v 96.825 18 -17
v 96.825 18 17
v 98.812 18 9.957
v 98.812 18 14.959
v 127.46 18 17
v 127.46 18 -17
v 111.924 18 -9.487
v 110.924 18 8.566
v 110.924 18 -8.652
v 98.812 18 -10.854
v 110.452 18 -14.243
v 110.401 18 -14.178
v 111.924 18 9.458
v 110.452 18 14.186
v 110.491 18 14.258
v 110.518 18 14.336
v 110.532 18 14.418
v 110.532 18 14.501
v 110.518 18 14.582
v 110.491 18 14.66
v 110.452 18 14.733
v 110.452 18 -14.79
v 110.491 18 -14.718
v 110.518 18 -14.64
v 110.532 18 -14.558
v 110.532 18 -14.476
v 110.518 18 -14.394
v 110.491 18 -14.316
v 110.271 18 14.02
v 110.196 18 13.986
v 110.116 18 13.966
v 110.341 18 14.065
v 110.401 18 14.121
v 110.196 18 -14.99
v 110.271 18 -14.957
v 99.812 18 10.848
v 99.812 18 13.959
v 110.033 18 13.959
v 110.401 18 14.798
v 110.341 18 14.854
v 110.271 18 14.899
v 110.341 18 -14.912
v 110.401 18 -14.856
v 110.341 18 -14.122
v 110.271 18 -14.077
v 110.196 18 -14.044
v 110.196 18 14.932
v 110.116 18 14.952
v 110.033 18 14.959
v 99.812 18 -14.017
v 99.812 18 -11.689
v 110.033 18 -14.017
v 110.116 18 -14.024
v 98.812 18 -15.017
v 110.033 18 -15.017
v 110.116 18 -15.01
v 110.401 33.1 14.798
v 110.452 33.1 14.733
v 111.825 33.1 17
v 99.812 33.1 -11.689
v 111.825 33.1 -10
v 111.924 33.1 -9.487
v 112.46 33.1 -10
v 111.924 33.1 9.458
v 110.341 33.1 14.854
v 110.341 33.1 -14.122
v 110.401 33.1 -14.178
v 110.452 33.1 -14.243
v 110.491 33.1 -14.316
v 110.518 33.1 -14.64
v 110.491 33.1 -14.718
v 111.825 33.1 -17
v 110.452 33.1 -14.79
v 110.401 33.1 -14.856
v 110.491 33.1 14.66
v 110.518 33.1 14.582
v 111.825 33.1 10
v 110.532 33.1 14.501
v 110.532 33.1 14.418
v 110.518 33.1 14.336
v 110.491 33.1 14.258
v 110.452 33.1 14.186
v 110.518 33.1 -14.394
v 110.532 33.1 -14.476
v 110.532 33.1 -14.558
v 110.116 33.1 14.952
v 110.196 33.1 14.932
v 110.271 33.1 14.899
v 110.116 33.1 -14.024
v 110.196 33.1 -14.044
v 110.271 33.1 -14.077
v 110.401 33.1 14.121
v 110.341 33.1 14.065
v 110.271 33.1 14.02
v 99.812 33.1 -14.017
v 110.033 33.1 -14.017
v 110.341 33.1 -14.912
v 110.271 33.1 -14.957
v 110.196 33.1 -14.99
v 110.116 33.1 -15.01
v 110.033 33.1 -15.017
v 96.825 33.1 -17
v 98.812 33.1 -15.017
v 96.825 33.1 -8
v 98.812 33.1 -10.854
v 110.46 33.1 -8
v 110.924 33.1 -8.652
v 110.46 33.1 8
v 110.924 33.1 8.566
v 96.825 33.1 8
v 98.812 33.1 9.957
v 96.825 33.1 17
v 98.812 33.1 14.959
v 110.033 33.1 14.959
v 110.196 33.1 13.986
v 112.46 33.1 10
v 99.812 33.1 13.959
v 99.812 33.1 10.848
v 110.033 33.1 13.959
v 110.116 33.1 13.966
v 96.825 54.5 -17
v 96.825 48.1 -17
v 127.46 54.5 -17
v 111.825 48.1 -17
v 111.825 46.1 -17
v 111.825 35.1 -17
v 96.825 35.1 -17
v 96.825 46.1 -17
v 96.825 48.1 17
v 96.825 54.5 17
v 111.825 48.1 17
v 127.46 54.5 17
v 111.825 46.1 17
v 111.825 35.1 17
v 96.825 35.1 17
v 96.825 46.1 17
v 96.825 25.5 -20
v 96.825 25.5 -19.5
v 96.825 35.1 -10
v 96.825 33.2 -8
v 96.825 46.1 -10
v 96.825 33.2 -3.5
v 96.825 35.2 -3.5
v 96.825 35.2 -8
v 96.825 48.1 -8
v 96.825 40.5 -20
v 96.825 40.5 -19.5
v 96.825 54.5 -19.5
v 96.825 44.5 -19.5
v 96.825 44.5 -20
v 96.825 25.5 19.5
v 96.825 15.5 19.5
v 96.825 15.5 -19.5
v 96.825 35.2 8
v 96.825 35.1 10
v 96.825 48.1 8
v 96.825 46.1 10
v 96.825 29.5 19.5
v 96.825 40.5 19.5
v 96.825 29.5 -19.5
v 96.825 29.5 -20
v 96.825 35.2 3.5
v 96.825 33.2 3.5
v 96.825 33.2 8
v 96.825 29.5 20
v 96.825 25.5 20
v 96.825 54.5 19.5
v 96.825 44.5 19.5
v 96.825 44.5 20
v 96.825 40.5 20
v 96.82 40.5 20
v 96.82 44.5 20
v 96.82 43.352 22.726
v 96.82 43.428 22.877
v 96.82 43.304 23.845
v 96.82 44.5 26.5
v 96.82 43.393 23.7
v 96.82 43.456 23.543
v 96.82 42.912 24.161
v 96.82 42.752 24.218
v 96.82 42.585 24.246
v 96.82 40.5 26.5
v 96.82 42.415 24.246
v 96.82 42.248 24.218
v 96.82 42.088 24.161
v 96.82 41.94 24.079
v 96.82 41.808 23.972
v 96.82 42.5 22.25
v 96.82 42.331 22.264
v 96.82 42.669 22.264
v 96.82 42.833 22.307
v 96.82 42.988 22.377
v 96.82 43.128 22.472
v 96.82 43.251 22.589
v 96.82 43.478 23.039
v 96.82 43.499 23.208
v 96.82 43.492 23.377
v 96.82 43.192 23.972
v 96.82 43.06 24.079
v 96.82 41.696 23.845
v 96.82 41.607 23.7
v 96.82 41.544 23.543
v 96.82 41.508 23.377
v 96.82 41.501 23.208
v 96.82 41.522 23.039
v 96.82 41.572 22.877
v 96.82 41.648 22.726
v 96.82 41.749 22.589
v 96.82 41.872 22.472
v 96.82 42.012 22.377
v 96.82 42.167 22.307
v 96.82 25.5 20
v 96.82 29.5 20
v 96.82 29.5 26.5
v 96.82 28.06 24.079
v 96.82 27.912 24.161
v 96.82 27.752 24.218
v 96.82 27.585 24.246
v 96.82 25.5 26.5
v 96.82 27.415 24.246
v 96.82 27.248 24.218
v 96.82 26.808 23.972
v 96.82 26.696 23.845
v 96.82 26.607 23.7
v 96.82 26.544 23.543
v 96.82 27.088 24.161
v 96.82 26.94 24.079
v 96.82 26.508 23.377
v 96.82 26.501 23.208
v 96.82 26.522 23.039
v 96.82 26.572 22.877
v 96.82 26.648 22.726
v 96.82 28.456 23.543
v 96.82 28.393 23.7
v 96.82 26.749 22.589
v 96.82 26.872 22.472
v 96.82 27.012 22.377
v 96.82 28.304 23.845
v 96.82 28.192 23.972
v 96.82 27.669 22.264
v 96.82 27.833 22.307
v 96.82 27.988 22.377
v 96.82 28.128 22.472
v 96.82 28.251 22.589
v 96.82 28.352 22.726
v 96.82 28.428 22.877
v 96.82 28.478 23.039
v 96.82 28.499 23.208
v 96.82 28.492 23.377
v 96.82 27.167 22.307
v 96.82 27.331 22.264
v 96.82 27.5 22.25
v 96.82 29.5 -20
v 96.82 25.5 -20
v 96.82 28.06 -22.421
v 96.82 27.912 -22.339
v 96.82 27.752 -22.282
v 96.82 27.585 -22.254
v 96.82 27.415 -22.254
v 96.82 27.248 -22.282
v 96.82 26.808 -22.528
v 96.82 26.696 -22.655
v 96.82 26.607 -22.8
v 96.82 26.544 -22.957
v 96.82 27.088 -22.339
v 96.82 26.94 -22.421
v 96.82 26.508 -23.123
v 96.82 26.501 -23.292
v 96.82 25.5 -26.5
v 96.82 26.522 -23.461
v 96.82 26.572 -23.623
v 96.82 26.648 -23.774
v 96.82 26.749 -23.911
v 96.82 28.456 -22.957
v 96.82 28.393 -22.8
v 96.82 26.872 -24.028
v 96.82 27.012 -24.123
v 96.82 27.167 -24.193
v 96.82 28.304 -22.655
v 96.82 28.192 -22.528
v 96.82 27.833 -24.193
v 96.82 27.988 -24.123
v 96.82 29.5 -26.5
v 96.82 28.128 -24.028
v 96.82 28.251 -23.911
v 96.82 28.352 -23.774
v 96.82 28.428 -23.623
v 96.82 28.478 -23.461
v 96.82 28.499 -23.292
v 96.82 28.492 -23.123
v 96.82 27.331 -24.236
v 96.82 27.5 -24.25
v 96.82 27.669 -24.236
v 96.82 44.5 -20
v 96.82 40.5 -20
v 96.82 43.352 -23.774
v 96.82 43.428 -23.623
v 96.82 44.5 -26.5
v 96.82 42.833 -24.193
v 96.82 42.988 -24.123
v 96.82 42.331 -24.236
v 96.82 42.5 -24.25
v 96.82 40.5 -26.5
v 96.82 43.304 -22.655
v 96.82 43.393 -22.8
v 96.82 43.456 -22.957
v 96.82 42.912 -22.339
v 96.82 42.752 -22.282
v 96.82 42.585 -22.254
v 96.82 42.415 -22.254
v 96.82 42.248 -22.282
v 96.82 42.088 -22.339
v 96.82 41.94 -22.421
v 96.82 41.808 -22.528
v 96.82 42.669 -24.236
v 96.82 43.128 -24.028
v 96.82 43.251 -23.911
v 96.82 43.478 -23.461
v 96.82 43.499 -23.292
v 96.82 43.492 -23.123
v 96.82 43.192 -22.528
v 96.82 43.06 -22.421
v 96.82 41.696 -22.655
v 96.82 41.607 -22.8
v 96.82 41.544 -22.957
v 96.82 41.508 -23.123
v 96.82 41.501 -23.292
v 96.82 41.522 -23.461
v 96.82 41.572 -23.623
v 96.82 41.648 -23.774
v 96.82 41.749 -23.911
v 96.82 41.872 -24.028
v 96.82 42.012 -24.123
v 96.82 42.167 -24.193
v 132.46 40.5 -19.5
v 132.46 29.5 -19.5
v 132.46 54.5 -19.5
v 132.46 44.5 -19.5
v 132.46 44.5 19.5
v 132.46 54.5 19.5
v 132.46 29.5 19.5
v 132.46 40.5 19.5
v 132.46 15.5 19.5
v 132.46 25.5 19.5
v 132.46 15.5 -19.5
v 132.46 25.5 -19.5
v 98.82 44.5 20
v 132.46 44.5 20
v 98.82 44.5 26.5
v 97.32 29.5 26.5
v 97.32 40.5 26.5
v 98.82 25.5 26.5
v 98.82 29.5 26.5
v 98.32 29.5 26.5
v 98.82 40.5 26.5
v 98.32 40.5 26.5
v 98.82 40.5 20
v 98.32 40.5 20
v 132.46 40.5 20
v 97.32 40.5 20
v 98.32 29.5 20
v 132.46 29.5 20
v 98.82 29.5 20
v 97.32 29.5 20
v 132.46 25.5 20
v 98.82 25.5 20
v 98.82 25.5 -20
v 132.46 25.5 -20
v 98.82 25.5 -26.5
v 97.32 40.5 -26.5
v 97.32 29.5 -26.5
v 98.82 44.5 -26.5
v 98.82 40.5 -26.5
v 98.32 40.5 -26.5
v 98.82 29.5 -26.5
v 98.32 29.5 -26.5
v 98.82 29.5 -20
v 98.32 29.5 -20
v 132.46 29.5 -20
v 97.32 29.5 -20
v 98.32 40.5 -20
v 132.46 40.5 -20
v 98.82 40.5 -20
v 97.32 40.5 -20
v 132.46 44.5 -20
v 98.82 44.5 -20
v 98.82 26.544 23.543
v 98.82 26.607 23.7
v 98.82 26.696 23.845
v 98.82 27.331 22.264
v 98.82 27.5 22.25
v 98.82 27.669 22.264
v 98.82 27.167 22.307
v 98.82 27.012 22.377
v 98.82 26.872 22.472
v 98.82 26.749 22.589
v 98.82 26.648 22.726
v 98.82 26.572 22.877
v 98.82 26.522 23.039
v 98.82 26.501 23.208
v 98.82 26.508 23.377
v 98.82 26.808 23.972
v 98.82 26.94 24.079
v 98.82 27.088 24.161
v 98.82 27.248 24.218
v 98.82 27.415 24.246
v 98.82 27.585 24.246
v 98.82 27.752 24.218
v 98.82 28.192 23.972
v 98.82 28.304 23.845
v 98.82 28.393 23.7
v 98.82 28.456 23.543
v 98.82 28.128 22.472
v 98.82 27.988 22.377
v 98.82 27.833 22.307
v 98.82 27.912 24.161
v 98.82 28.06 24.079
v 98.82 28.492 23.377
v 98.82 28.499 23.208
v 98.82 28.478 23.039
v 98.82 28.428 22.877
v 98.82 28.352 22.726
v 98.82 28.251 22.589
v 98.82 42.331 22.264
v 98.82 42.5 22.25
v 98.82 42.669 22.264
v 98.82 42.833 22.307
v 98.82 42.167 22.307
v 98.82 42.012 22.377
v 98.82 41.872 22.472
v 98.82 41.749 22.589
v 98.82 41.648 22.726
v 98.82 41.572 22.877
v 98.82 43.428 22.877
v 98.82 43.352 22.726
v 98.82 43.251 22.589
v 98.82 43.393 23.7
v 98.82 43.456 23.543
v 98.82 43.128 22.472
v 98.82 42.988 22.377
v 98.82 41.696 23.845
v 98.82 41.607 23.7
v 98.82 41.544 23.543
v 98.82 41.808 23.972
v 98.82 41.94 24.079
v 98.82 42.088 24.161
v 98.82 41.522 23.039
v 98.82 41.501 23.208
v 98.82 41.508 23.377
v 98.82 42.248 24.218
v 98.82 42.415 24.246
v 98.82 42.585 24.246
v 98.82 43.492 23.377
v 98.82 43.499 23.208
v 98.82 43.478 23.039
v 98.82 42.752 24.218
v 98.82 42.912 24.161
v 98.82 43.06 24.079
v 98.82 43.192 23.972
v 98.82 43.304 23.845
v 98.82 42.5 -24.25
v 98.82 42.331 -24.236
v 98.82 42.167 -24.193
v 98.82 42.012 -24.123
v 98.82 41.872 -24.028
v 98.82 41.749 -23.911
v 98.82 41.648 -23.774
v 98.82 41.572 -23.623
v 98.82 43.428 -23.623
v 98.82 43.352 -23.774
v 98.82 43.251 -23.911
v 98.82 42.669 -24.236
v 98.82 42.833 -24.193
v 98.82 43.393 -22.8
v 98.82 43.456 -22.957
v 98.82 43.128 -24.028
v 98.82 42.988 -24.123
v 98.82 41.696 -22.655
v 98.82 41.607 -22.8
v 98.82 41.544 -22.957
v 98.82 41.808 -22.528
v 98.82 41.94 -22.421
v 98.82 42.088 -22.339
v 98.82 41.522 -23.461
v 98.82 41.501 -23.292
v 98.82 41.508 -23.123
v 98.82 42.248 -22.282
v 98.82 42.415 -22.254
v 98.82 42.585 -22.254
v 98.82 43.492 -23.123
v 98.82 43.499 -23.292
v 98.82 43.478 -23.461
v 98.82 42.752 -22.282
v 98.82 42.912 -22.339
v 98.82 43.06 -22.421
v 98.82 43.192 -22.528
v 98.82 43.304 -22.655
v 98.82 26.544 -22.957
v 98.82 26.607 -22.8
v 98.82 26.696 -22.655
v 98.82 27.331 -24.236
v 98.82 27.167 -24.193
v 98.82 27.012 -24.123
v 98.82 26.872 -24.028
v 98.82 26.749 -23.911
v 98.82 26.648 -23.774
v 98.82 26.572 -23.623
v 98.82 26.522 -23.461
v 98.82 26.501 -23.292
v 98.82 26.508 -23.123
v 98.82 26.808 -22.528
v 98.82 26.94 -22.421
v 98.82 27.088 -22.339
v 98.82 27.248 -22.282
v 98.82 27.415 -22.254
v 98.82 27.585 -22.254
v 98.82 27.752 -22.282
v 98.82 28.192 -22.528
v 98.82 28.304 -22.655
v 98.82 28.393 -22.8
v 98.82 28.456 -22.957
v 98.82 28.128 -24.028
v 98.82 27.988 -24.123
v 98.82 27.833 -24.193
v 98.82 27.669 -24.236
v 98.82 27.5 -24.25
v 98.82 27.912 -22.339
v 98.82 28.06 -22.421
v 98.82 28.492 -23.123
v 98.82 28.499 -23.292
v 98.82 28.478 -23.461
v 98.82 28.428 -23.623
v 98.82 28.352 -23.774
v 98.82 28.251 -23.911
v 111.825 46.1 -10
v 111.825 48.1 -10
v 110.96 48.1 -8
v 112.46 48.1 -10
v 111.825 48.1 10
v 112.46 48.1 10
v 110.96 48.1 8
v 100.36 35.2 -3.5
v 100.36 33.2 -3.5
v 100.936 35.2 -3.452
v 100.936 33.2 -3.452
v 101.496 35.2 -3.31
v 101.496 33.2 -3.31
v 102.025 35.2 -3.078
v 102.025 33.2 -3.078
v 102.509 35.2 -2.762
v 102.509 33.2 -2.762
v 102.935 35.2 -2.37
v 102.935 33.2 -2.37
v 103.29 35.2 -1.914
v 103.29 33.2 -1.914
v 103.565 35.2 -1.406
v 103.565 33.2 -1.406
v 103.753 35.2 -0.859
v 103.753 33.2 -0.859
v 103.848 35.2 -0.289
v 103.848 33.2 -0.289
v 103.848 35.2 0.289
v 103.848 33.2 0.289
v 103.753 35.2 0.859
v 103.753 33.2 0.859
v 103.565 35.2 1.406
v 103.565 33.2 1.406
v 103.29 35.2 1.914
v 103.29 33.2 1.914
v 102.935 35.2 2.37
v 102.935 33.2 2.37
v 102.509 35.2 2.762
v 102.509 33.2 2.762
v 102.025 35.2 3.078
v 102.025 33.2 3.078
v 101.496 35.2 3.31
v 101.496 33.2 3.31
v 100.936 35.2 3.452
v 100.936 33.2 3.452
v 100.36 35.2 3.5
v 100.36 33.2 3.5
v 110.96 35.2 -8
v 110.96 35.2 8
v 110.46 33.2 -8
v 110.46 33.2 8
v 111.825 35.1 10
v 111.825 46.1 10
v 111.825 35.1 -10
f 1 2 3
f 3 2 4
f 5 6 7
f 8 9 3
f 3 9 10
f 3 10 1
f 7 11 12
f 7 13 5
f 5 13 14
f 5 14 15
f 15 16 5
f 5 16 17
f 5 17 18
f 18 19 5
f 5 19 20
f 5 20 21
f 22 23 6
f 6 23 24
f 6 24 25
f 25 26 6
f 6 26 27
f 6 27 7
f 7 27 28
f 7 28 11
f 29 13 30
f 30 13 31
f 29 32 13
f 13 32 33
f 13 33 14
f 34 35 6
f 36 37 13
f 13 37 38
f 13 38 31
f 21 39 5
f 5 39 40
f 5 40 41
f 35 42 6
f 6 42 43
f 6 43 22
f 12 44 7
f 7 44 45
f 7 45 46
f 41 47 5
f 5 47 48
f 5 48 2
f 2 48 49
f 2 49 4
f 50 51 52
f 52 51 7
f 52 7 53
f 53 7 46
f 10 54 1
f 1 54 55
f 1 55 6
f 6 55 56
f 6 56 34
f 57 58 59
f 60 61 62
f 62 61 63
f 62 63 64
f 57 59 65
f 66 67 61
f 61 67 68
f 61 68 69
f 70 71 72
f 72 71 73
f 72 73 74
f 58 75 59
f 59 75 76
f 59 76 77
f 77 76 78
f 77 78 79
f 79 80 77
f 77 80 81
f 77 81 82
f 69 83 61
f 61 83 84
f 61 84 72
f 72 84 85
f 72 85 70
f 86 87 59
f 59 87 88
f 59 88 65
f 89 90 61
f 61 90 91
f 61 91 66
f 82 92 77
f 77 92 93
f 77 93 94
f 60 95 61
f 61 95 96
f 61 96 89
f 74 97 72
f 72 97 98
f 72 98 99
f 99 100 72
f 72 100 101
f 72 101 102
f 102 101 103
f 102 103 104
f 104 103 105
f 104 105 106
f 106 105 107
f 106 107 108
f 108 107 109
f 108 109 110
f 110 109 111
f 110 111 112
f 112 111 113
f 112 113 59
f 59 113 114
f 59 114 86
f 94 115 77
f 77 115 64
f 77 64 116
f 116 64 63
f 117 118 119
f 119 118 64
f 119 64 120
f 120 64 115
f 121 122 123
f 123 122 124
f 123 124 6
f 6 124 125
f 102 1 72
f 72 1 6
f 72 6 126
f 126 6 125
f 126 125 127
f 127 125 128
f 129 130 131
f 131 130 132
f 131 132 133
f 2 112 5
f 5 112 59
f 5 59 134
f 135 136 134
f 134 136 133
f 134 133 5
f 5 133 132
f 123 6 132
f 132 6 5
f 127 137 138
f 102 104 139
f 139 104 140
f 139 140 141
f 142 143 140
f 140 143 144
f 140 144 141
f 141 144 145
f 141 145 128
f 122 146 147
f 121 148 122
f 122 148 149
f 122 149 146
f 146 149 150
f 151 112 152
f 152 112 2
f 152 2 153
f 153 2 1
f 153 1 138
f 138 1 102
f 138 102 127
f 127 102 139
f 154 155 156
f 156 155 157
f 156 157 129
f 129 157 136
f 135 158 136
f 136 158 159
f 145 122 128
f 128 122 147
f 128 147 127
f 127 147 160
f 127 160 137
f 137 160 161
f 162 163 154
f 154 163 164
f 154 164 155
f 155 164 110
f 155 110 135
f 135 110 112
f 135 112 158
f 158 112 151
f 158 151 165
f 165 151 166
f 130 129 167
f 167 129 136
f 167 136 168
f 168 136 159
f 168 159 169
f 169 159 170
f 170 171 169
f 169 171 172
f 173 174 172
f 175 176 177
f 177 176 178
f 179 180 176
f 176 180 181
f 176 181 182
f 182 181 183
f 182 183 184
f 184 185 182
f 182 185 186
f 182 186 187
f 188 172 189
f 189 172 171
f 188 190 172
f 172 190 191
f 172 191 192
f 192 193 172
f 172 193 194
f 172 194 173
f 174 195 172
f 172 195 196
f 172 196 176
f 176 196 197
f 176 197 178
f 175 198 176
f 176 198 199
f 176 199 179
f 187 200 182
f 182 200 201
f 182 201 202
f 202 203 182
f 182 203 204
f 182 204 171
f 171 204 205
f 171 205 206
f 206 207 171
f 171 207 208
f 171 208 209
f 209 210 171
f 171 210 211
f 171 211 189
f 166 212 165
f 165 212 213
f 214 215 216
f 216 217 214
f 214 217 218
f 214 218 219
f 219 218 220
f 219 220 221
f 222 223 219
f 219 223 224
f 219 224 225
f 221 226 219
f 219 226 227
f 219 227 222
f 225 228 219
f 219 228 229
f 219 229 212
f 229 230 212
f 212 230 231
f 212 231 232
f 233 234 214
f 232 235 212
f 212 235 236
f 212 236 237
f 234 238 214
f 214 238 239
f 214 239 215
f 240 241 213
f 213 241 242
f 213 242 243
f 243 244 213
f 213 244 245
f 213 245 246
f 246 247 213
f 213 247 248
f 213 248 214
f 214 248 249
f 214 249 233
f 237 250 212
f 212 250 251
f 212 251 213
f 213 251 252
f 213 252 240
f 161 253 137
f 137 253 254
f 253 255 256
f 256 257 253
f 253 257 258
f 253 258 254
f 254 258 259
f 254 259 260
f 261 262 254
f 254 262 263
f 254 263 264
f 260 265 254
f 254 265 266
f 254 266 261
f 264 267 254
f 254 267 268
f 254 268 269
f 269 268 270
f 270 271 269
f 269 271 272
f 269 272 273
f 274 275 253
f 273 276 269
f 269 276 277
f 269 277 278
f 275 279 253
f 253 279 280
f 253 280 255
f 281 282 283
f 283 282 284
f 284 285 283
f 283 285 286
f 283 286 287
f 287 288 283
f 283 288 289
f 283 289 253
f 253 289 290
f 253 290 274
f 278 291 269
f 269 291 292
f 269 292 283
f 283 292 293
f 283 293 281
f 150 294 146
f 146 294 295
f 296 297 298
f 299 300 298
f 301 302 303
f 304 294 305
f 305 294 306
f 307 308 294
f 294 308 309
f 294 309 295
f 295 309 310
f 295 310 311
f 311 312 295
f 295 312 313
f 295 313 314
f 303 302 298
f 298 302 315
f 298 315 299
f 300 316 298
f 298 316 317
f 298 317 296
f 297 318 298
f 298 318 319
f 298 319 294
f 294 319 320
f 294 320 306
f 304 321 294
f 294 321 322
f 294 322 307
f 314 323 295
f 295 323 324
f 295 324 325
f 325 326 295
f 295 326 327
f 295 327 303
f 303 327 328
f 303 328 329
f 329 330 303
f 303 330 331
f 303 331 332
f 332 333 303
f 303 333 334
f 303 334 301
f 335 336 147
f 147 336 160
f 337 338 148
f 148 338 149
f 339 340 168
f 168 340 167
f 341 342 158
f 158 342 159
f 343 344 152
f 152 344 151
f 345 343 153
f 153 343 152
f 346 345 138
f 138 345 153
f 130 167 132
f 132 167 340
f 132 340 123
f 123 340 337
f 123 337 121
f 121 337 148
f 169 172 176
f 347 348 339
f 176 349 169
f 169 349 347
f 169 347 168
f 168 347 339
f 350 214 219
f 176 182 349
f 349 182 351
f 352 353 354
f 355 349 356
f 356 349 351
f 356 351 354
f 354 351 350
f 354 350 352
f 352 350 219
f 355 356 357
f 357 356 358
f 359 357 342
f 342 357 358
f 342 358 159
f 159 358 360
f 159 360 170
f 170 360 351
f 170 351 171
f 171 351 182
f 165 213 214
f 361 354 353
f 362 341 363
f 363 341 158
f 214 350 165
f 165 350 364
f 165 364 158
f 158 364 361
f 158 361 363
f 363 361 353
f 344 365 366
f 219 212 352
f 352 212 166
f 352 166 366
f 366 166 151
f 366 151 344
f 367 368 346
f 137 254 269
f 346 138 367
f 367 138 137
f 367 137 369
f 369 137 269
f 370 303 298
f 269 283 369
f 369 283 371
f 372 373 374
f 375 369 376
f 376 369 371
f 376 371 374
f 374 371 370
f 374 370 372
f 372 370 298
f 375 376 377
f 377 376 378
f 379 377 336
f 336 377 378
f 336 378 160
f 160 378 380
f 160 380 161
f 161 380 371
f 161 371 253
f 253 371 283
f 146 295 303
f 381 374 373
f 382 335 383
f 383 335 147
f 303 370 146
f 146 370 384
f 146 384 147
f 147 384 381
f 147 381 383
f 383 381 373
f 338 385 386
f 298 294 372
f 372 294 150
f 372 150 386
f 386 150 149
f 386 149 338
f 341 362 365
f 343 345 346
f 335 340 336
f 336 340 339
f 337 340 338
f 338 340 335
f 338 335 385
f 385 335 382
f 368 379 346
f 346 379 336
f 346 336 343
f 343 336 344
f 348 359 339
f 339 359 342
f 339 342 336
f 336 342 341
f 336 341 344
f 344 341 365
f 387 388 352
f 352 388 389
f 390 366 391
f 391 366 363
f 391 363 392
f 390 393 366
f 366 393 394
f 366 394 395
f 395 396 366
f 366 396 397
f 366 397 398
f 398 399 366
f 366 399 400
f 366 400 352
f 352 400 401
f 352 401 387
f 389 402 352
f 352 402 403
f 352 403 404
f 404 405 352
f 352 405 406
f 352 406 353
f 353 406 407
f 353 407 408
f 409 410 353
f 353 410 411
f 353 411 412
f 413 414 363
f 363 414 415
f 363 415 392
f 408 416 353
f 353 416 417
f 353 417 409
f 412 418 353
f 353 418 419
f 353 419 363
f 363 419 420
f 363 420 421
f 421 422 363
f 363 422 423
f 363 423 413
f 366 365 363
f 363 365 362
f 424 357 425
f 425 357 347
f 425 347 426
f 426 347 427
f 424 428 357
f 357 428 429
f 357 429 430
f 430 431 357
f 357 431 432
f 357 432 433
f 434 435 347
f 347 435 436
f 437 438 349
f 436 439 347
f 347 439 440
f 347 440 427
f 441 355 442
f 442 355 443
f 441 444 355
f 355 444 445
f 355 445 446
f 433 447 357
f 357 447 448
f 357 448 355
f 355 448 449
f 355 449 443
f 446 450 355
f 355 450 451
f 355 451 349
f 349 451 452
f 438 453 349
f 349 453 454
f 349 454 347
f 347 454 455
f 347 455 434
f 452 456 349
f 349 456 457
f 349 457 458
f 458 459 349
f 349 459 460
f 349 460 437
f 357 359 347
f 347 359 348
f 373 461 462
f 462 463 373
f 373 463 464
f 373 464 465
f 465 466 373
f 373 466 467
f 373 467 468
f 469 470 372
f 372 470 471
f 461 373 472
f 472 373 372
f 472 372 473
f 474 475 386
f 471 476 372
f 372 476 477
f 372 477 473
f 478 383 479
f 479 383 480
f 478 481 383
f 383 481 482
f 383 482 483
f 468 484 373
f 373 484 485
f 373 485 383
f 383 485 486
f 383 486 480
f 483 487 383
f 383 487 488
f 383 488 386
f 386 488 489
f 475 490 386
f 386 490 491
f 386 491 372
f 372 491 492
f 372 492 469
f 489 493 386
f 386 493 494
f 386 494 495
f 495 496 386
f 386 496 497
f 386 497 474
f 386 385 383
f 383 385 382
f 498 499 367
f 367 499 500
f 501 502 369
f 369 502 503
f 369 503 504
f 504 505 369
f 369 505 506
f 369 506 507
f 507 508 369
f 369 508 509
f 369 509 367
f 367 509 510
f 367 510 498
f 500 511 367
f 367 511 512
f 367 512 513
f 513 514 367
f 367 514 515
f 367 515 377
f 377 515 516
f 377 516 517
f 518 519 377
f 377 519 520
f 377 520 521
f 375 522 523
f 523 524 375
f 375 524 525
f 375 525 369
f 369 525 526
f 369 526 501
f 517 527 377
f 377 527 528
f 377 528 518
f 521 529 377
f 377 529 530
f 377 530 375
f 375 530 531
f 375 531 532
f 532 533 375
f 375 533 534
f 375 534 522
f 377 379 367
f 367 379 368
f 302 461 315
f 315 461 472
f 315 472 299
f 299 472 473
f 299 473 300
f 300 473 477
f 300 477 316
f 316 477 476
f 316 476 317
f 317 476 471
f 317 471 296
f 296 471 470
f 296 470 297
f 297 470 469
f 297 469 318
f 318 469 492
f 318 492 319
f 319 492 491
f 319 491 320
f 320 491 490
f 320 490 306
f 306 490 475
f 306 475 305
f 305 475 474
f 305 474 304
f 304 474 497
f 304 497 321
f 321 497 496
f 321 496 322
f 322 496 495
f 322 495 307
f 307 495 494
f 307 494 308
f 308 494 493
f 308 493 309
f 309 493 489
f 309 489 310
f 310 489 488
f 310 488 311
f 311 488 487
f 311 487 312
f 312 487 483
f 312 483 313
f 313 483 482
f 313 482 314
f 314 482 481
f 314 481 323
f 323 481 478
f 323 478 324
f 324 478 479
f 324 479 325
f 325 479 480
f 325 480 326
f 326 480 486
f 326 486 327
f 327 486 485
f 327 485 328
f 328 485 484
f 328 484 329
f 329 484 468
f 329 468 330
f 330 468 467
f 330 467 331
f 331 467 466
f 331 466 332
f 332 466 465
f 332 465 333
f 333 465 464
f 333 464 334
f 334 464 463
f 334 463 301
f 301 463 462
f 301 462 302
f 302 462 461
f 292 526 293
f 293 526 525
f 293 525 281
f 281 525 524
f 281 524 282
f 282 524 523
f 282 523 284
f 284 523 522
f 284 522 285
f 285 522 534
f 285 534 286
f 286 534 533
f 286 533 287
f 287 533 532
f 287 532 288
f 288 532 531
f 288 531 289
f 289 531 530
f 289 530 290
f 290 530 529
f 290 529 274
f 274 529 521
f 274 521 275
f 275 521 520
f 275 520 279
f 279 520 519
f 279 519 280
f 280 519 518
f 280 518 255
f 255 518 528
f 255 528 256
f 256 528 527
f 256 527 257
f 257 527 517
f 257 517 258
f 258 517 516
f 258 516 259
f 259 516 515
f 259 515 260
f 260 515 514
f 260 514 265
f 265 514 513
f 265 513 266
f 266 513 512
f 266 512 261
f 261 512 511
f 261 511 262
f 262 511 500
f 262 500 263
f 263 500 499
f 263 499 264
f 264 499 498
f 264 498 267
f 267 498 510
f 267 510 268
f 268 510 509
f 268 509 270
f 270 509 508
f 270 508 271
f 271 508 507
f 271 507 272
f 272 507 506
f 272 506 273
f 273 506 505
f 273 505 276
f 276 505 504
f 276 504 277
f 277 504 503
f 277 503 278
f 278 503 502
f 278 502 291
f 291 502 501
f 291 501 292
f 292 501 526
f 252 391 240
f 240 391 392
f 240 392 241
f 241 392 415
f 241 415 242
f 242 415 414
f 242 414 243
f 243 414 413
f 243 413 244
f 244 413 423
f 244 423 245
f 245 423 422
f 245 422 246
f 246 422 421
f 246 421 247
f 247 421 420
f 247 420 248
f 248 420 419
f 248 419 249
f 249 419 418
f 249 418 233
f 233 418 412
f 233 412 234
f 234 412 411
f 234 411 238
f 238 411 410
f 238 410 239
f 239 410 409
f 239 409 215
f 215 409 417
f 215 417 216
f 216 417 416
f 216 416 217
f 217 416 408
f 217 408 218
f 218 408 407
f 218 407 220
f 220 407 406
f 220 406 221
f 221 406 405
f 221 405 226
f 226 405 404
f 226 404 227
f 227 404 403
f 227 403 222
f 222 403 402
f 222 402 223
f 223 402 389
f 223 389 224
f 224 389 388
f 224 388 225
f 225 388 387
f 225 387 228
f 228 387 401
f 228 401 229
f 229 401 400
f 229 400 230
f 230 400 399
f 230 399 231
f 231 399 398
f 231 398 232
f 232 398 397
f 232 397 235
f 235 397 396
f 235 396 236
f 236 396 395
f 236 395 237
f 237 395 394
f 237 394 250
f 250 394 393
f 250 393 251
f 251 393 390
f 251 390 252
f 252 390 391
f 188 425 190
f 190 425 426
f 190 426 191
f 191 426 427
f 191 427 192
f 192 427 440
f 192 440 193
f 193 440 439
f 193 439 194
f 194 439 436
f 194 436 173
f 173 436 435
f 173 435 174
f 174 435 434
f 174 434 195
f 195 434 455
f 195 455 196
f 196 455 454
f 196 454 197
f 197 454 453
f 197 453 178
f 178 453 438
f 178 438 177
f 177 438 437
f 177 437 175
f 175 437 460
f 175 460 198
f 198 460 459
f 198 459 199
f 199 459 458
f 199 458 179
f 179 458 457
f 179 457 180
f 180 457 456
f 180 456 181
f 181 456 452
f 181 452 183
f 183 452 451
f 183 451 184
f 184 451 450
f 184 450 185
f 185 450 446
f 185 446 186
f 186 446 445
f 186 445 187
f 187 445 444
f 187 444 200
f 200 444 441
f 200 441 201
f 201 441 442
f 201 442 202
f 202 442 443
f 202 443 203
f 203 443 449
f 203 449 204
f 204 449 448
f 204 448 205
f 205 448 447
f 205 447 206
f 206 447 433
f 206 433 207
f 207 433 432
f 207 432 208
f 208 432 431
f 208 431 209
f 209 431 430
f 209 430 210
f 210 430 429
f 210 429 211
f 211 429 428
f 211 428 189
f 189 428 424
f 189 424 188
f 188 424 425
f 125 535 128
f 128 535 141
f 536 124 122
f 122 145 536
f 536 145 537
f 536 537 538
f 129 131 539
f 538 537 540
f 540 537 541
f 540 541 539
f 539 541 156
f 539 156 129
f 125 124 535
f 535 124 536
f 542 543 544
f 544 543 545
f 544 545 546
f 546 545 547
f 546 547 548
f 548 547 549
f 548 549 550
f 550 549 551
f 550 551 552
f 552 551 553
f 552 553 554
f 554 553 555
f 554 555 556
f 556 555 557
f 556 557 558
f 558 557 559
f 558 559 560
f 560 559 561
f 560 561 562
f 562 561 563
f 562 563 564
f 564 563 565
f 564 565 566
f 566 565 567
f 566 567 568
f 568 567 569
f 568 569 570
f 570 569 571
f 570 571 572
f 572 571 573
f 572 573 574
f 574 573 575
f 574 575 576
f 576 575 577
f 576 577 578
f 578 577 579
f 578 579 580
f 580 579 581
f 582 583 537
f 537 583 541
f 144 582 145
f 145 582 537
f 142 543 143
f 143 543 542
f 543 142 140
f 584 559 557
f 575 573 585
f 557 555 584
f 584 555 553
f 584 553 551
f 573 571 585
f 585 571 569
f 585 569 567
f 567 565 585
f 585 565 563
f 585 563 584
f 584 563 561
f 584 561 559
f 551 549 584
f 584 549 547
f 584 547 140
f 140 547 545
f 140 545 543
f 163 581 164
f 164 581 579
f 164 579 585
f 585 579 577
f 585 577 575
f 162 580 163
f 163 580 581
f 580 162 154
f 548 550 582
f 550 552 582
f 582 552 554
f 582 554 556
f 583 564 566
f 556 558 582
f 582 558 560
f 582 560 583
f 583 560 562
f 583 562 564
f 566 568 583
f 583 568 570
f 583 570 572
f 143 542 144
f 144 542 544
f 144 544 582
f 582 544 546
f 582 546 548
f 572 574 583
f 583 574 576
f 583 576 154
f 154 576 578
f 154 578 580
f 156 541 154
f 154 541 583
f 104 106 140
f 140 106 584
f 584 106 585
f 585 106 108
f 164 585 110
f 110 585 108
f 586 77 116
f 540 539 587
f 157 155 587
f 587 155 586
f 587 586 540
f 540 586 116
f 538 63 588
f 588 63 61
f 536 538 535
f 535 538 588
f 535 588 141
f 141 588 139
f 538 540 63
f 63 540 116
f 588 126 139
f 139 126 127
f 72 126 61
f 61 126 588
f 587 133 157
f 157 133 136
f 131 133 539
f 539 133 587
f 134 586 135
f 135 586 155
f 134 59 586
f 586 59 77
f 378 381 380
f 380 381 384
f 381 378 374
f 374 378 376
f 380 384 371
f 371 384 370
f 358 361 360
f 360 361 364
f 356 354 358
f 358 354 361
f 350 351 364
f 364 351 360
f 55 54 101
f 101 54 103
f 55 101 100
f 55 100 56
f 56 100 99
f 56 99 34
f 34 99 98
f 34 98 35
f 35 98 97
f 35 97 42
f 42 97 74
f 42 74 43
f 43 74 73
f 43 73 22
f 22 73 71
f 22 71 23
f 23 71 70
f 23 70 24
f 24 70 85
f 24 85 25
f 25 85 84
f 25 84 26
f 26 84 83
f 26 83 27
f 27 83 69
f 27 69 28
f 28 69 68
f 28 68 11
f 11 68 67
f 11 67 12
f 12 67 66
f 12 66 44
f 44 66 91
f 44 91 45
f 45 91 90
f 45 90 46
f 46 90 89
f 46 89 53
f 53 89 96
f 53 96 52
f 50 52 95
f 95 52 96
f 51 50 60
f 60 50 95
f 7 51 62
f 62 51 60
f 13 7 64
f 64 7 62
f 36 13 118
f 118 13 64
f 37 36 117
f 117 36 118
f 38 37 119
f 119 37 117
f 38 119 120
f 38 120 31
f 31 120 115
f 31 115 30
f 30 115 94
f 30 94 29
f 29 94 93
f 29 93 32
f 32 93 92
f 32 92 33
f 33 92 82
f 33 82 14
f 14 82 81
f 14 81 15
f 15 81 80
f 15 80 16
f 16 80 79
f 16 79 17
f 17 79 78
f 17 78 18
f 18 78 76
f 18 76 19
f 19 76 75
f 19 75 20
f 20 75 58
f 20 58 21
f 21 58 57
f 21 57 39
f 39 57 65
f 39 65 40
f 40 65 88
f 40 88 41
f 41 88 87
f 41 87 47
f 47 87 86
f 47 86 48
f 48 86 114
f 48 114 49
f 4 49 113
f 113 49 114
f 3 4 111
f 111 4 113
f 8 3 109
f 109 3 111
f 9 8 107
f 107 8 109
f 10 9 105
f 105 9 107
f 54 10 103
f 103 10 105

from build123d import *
from build123d.topology import SkipClean

# Parameters (mm, degrees)
SKETCH1_R               = 100
BOSS_EXTRUDE1_DEPTH     = 10
SKETCH2_R               = 95
SKETCH2_R_2             = 80
CUT_EXTRUDE1_DEPTH      = 2
BOSS_EXTRUDE2_DEPTH     = 40
BOSS_EXTRUDE3_DEPTH     = 5
CUT_EXTRUDE2_START      = -5
SKETCH5_W               = 50
SKETCH5_H               = 40
CUT_EXTRUDE2_DEPTH      = 40
BOSS_EXTRUDE4_DEPTH     = 45
SKETCH8_W               = 40
SKETCH8_H               = 5
BOSS_EXTRUDE5_DEPTH     = 55
CUT_EXTRUDE3_START      = -10
SKETCH10_W              = 8.429508811
SKETCH10_H              = 40
CUT_EXTRUDE3_DEPTH      = 10
BOSS_EXTRUDE6_START     = 18.2
BOSS_EXTRUDE6_DEPTH     = 2
BOSS_EXTRUDE7_START     = 18.1
BOSS_EXTRUDE7_DEPTH     = 15
SKETCH13_W              = 20.653307815
SKETCH13_H              = 40
CUT_EXTRUDE4_DEPTH      = 5
BOSS_EXTRUDE8_DEPTH     = 17
BOSS_EXTRUDE9_DEPTH     = 3
BOSS_EXTRUDE10_DEPTH    = 3
SKETCH18_W              = 11.98170237
SKETCH18_H              = 40
CUT_EXTRUDE5_DEPTH      = 5
CUT_EXTRUDE6_START      = -20
CUT_EXTRUDE6_DEPTH      = 25
CUT_EXTRUDE7_DEPTH      = 300
CUT_EXTRUDE7_DEPTH_BACK = 300
BOSS_EXTRUDE12_DEPTH    = 30.7
CUT_EXTRUDE8_DEPTH      = 40
BOSS_EXTRUDE13_START    = -33.64
SKETCH27_W              = 7
SKETCH27_H              = 5
BOSS_EXTRUDE13_DEPTH    = 2
CUT_EXTRUDE9_DEPTH      = 40
F_2_0MM_DOWEL_HOLE2_D   = 2
SKETCH31_W              = 0.5
SKETCH31_H              = 16
CUT_EXTRUDE10_DEPTH     = 12.9
CUT_EXTRUDE11_DEPTH     = 20
SKETCH33_W              = 7
SKETCH33_H              = 2
BOSS_EXTRUDE14_DEPTH    = 15
BOSS_EXTRUDE15_START    = -0.5
SKETCH34_W              = 6.5
SKETCH34_H              = 11
BOSS_EXTRUDE15_DEPTH    = 1
BOSS_EXTRUDE16_DEPTH    = 15.1


with BuildPart() as part:
    # Sketch1 → Boss-Extrude1 (new body)
    with BuildSketch(Plane(origin=(0, 0, 0), x_dir=(1, 0, 0), z_dir=(0, 1, 0))):
        with Locations(Location((0, 0, 0), (0, 0, 270))):
            Circle(SKETCH1_R)
    extrude(amount=BOSS_EXTRUDE1_DEPTH)

    # Sketch2 → Cut-Extrude1 (cut)
    with BuildSketch(Plane(origin=(0, 10, 0), x_dir=(1, 0, 0), z_dir=(0, 1, 0))):
        with Locations(Location((0, 0, 0), (0, 0, 270))):
            Circle(SKETCH2_R)
        with Locations(Location((0, 0, 0), (0, 0, 270))):
            Circle(SKETCH2_R_2, mode=Mode.SUBTRACT)
    extrude(amount=-CUT_EXTRUDE1_DEPTH, mode=Mode.SUBTRACT)

    # Sketch3 → Boss-Extrude2 (add)
    with SkipClean():  # the faces are left unmerged after this step: merging them gives an invalid solid
        with BuildSketch(Plane(origin=(0, 10, 0), x_dir=(1, 0, 0), z_dir=(0, 1, 0))):
            with BuildLine():
                Line((-67.175144213, 67.175144213), (-70.710678119, 70.710678119))
                ThreePointArc((-70.710678119, 70.710678119), (100, 0), (-70.710678119, -70.710678119))
                Line((-70.710678119, -70.710678119), (-67.175144213, -67.175144213))
                ThreePointArc((-67.175144213, -67.175144213), (95, 0), (-67.175144213, 67.175144213))
            make_face()
        extrude(amount=BOSS_EXTRUDE2_DEPTH)

    # Sketch5 → Cut-Extrude2 (cut)
    with SkipClean():  # the faces are left unmerged after this step: merging them gives an invalid solid
        with BuildSketch(Plane(origin=(0, 55, 0), x_dir=(1, 0, 0), z_dir=(0, 1, 0)).offset(CUT_EXTRUDE2_START)):
            with Locations((102.459666924, 0)):
                Rectangle(SKETCH5_W, SKETCH5_H)
        extrude(amount=-CUT_EXTRUDE2_DEPTH, mode=Mode.SUBTRACT)



with BuildPart() as body_2:
    # Sketch4 → Boss-Extrude3 (new body)
    with BuildSketch(Plane(origin=(0, 50, 0), x_dir=(1, 0, 0), z_dir=(0, 1, 0))):
        with BuildLine():
            ThreePointArc((-67.175144213, -67.175144213), (95, 0), (-67.175144213, 67.175144213))
            Line((-67.175144213, 67.175144213), (-56.568542495, 56.568542495))
            ThreePointArc((-56.568542495, 56.568542495), (30.614674589, 73.910362601), (80, 0))
            ThreePointArc((80, 0), (30.614674589, -73.910362601), (-56.568542495, -56.568542495))
            Line((-56.568542495, -56.568542495), (-67.175144213, -67.175144213))
        make_face()
        with BuildLine():
            Line((-70.710678119, 70.710678119), (-67.175144213, 67.175144213))
            ThreePointArc((-67.175144213, 67.175144213), (95, 0), (-67.175144213, -67.175144213))
            Line((-67.175144213, -67.175144213), (-70.710678119, -70.710678119))
            ThreePointArc((-70.710678119, -70.710678119), (100, 0), (-70.710678119, 70.710678119))
        make_face()
    extrude(amount=BOSS_EXTRUDE3_DEPTH)


with BuildPart() as part_1:
    with SkipClean():  # the faces are left unmerged after this step: merging them gives an invalid solid
        add(part.part)

        add(body_2.part)  # Boss-Extrude4 merges body 2
        # Sketch7 → Boss-Extrude4 (add)
        with BuildSketch(Plane(origin=(0, 55, 0), x_dir=(1, 0, 0), z_dir=(0, 1, 0))):
            with BuildLine():
                ThreePointArc((96.824583655, 25), (97.434164903, 22.507410108), (97.979589711, 20))
                Line((97.979589711, 20), (127.459666924, 20))
                Line((127.459666924, 20), (127.459666924, -20))
                Line((127.459666924, -20), (97.979589711, -20))
                ThreePointArc((97.979589711, -20), (97.434164903, -22.507410108), (96.824583655, -25))
                Line((96.824583655, -25), (132.459666924, -25))
                Line((132.459666924, -25), (132.459666924, 25))
                Line((132.459666924, 25), (96.824583655, 25))
            make_face()
        extrude(amount=-BOSS_EXTRUDE4_DEPTH)

    # Sketch8 → Boss-Extrude5 (add)
    with SkipClean():  # the faces are left unmerged after this step: merging them gives an invalid solid
        with BuildSketch(Plane.ZY.offset(-127.459666924)):
            with Locations((0, 12.5)):
                Rectangle(SKETCH8_W, SKETCH8_H)
        extrude(amount=BOSS_EXTRUDE5_DEPTH)

    # Sketch10 → Cut-Extrude3 (cut)
    with SkipClean():  # the faces are left unmerged after this step: merging them gives an invalid solid
        with BuildSketch(Plane.XZ.offset(CUT_EXTRUDE3_START)):
            with Locations((88.6561237, 0)):
                Rectangle(SKETCH10_W, SKETCH10_H)
            with BuildLine():
                Line((92.870878105, -20), (92.870878105, 20))
                ThreePointArc((92.870878105, 20), (95, 0), (92.870878105, -20))
            make_face()
        extrude(amount=-CUT_EXTRUDE3_DEPTH, mode=Mode.SUBTRACT)

    # Sketch13 → Cut-Extrude4 (cut)
    with SkipClean():  # the faces are left unmerged after this step: merging them gives an invalid solid
        with BuildSketch(Plane(origin=(0, 55, 0), x_dir=(1, 0, 0), z_dir=(0, 1, 0))):
            with Locations((100.326653908, 0)):
                Rectangle(SKETCH13_W, SKETCH13_H)
        extrude(amount=-CUT_EXTRUDE4_DEPTH, mode=Mode.SUBTRACT)



with BuildPart() as body_2_2:
    # Sketch11 → Boss-Extrude6 (new body)
    with BuildSketch(Plane(origin=(0, 15, 0), x_dir=(1, 0, 0), z_dir=(0, 1, 0)).offset(BOSS_EXTRUDE6_START)):
        with BuildLine():
            Line((110.459666924, 8), (95.459666924, 8))
            Line((95.459666924, 8), (95.459666924, 3.5))
            Line((95.459666924, 3.5), (100.359666924, 3.5))
            ThreePointArc((100.359666924, 3.5), (103.859666924, 0), (100.359666924, -3.5))
            Line((100.359666924, -3.5), (95.459666924, -3.5))
            Line((95.459666924, -3.5), (95.459666924, -8))
            Line((95.459666924, -8), (110.459666924, -8))
            Line((110.459666924, -8), (110.459666924, 8))
        make_face()
    extrude(amount=BOSS_EXTRUDE6_DEPTH)

    # Sketch12 → Boss-Extrude7 (add)
    with BuildSketch(Plane(origin=(0, 15, 0), x_dir=(1, 0, 0), z_dir=(0, 1, 0)).offset(BOSS_EXTRUDE7_START)):
        Polygon((95.459666924, -10), (95.459666924, -8), (110.459666924, -8), (110.459666924, 8), (95.459666924, 8), (95.459666924, 10), (112.459666924, 10), (112.459666924, -10), align=None)
    extrude(amount=BOSS_EXTRUDE7_DEPTH)


with BuildPart() as part_2:
    with SkipClean():  # the faces are left unmerged after this step: merging them gives an invalid solid
        add(part_1.part)

        add(body_2_2.part)  # Boss-Extrude8 merges body 2 2
        # Sketch15 → Boss-Extrude8 (add)
        with BuildSketch(Plane(origin=(112.459666924, 0, 0), x_dir=(0, 0, -1), z_dir=(1, 0, 0))):
            Polygon((-8.249409199, 33.1), (-18.249409392, 15), (-20, 15), (-20, 15.967177607), (-10, 34.067177257), align=None)
            Polygon((10, 34.067177257), (20, 15.967177607), (20, 15), (18.249409392, 15), (8.249409199, 33.1), align=None)
        extrude(amount=-BOSS_EXTRUDE8_DEPTH)

    # Sketch16 → Boss-Extrude9 (add)
    with BuildSketch(Plane(origin=(0, 0, 0), x_dir=(0.7071067811865464, 0, 0.7071067811865487), z_dir=(-0.7071067811865487, 0, 0.7071067811865464))):
        Polygon((-80, 50), (-95, 35), (-95, 50), align=None)
    extrude(amount=-BOSS_EXTRUDE9_DEPTH)

    # Sketch17 → Boss-Extrude10 (add)
    with BuildSketch(Plane(origin=(0, 0, 0), x_dir=(-0.7071067811865475, 0, 0.7071067811865477), z_dir=(-0.7071067811865477, 0, -0.7071067811865475))):
        Polygon((80, 50), (95, 35), (95, 50), align=None)
    extrude(amount=-BOSS_EXTRUDE10_DEPTH)

    # Sketch18 → Cut-Extrude5 (cut)
    with BuildSketch(Plane(origin=(0, 15, 0), x_dir=(1, 0, 0), z_dir=(0, 1, 0))):
        with Locations((78.450518109, 0)):
            Rectangle(SKETCH18_W, SKETCH18_H)
    extrude(amount=-CUT_EXTRUDE5_DEPTH, mode=Mode.SUBTRACT)

    # Sketch20 → Cut-Extrude6 (cut)
    with BuildSketch(Plane(origin=(0, 55, 0), x_dir=(1, 0, 0), z_dir=(0, 1, 0)).offset(CUT_EXTRUDE6_START)):
        with BuildLine():
            Line((0, 0), (-31.757481462, 118.520534337))
            ThreePointArc((-31.757481462, 118.520534337), (-122.701486088, 0), (-31.757481462, -118.520534337))
            Line((-31.757481462, -118.520534337), (0, 0))
        make_face()
    extrude(amount=-CUT_EXTRUDE6_DEPTH, mode=Mode.SUBTRACT)

    # Sketch21 → Cut-Extrude7 (cut, two sides)
    with BuildSketch(Plane.XY.offset(25)) as cut_extrude7_sk:
        Polygon((100, 0), (100, 10), (96.824583655, 10), (96.824583655, 55), (-129.04485411, 55), (-129.04485411, 0), align=None)
    extrude(amount=CUT_EXTRUDE7_DEPTH, mode=Mode.SUBTRACT)
    extrude(cut_extrude7_sk.sketch, amount=-CUT_EXTRUDE7_DEPTH_BACK, mode=Mode.SUBTRACT)

    # Sketch25 → Boss-Extrude12 (add)
    with BuildSketch(Plane.ZY.offset(-96.824583655)):
        Polygon((-20, 55), (-20, 15), (20, 15), (20, 55), (17, 55), (17, 18), (-17, 18), (-17, 55), align=None)
    extrude(amount=-BOSS_EXTRUDE12_DEPTH)

    # Sketch26 → Cut-Extrude8 (cut)
    with BuildSketch(Plane.ZY.offset(-96.824583655)):
        Polygon((-20, 55), (-20, 15), (20, 15), (20, 55), (25, 55), (25, 10), (-25, 10), (-25, 55), align=None)
    extrude(amount=-CUT_EXTRUDE8_DEPTH, mode=Mode.SUBTRACT)

    # Sketch27 → Boss-Extrude13 (add)
    with BuildSketch(Plane(origin=(132.459666924, 0, 0), x_dir=(0, 0, -1), z_dir=(1, 0, 0)).offset(BOSS_EXTRUDE13_START)):
        with Locations((-23.5, 42.5)):
            Rectangle(SKETCH27_W, SKETCH27_H)
        with Locations((-23.5, 27.5)):
            Rectangle(SKETCH27_W, SKETCH27_H)
        with Locations((23.5, 27.5)):
            Rectangle(SKETCH27_W, SKETCH27_H)
        with Locations((23.5, 42.5)):
            Rectangle(SKETCH27_W, SKETCH27_H)
    extrude(amount=-BOSS_EXTRUDE13_DEPTH)

    # Sketch28 → Cut-Extrude9 (cut)
    with BuildSketch(Plane(origin=(132.459666924, 0, 0), x_dir=(0, 0, -1), z_dir=(1, 0, 0))):
        Polygon((20, 44.5), (20, 45), (20, 55), (-20, 55), (-20, 45), (-20, 44.5), (-19.5, 44.5), (-19.5, 54.5), (19.5, 54.5), (19.5, 44.5), align=None)
        Polygon((-20, 44.5), (-20, 45), (-27, 45), (-27, 40), (-20, 40), (-20, 40.5), (-26.5, 40.5), (-26.5, 44.5), align=None)
        Polygon((-19.5, 40.5), (-20, 40.5), (-20, 40), (-20, 30), (-20, 29.5), (-19.5, 29.5), align=None)
        Polygon((-20, 29.5), (-20, 30), (-27, 30), (-27, 25), (-20, 25), (-20, 25.5), (-26.5, 25.5), (-26.5, 29.5), align=None)
        Polygon((20, 25), (20, 25.5), (19.5, 25.5), (19.5, 15.5), (-19.5, 15.5), (-19.5, 25.5), (-20, 25.5), (-20, 25), (-20, 15), (20, 15), align=None)
        Polygon((27, 30), (20, 30), (20, 29.5), (26.5, 29.5), (26.5, 25.5), (20, 25.5), (20, 25), (27, 25), align=None)
        Polygon((20, 40), (20, 40.5), (19.5, 40.5), (19.5, 29.5), (20, 29.5), (20, 30), align=None)
        Polygon((27, 45), (20, 45), (20, 44.5), (26.5, 44.5), (26.5, 40.5), (20, 40.5), (20, 40), (27, 40), align=None)
    extrude(amount=-CUT_EXTRUDE9_DEPTH, mode=Mode.SUBTRACT)

    # 2.0mm Dowel Hole2 (through all)
    with Locations(Plane(origin=(98.819666924, 0, 0), x_dir=(0, 0, -1), z_dir=(1, 0, 0))):
        with Locations((-23.25, 42.5), (-23.25, 27.5), (23.25, 27.5), (23.25, 42.5)):
            Hole(F_2_0MM_DOWEL_HOLE2_D / 2)

    # Sketch31 → Cut-Extrude10 (cut)
    with BuildSketch(Plane(origin=(0, 48.1, 0), x_dir=(1, 0, 0), z_dir=(0, 1, 0))):
        with Locations((110.709666924, 0)):
            Rectangle(SKETCH31_W, SKETCH31_H)
    extrude(amount=-CUT_EXTRUDE10_DEPTH, mode=Mode.SUBTRACT)

    # Sketch32 → Cut-Extrude11 (cut)
    with BuildSketch(Plane.ZY.offset(-96.824583655)):
        Polygon((-10, 48.1), (-10, 33.1), (10, 33.1), (10, 48.1), (17, 48.1), (17, 18), (-17, 18), (-17, 48.1), align=None)
    extrude(amount=-CUT_EXTRUDE11_DEPTH, mode=Mode.SUBTRACT)


with BuildPart() as cut_extrude11_piece_1:
    # of the separate pieces the step leaves, piece 1, a body of its own (cut_extrude11_pieces)
    add(part_2.part.solids().sort_by_distance((96.824583655, 18, 17))[0])



with BuildPart() as cut_extrude11_piece_2:
    # of the separate pieces the step leaves, piece 2, a body of its own (cut_extrude11_pieces)
    add(part_2.part.solids().sort_by_distance((96.824583655, 33.1, 10))[0])


with BuildPart() as cut_extrude11_piece_1_1:
    add(cut_extrude11_piece_1.part)

    add(cut_extrude11_piece_2.part)  # Boss-Extrude14 merges Cut-Extrude11 piece 2
    # Sketch33 → Boss-Extrude14 (add)
    with BuildSketch(Plane.ZY.offset(-96.824583655)):
        with Locations((-13.5, 47.1)):
            Rectangle(SKETCH33_W, SKETCH33_H)
        with Locations((-13.5, 34.1)):
            Rectangle(SKETCH33_W, SKETCH33_H)
        with Locations((13.5, 47.1)):
            Rectangle(SKETCH33_W, SKETCH33_H)
        with Locations((13.5, 34.1)):
            Rectangle(SKETCH33_W, SKETCH33_H)
    extrude(amount=-BOSS_EXTRUDE14_DEPTH)

    # Sketch34 → Boss-Extrude15 (add)
    with BuildSketch(Plane.ZY.offset(-96.819666924).offset(BOSS_EXTRUDE15_START)):
        with Locations((-23.25, 35)):
            Rectangle(SKETCH34_W, SKETCH34_H)
        with Locations((23.25, 35)):
            Rectangle(SKETCH34_W, SKETCH34_H)
    extrude(amount=-BOSS_EXTRUDE15_DEPTH)

    # Sketch35 → Boss-Extrude16 (add)
    with BuildSketch(Plane.XZ.offset(-33.1)):
        with BuildLine():
            Line((110.03340873, 14.959238822), (98.812214277, 14.959238822))
            Line((98.812214277, 14.959238822), (98.812214277, 9.956701087))
            Line((98.812214277, 9.956701087), (110.924266388, 8.565843429))
            Line((110.924266388, 8.565843429), (110.924266388, -8.652148394))
            Line((110.924266388, -8.652148394), (98.812214277, -10.854339687))
            Line((98.812214277, -10.854339687), (98.812214277, -15.0169624))
            Line((98.812214277, -15.0169624), (110.03340873, -15.0169624))
            ThreePointArc((110.03340873, -15.0169624), (110.53340873, -14.5169624), (110.03340873, -14.0169624))
            Line((110.03340873, -14.0169624), (99.812214277, -14.0169624))
            Line((99.812214277, -14.0169624), (99.812214277, -11.68891604))
            Line((99.812214277, -11.68891604), (111.924266388, -9.486724747))
            Line((111.924266388, -9.486724747), (111.924266388, 9.457582555))
            Line((111.924266388, 9.457582555), (99.812214277, 10.848440214))
            Line((99.812214277, 10.848440214), (99.812214277, 13.959238822))
            Line((99.812214277, 13.959238822), (110.03340873, 13.959238822))
            ThreePointArc((110.03340873, 13.959238822), (110.53340873, 14.459238822), (110.03340873, 14.959238822))
        make_face()
    extrude(amount=BOSS_EXTRUDE16_DEPTH)


solid = cut_extrude11_piece_1_1.part
